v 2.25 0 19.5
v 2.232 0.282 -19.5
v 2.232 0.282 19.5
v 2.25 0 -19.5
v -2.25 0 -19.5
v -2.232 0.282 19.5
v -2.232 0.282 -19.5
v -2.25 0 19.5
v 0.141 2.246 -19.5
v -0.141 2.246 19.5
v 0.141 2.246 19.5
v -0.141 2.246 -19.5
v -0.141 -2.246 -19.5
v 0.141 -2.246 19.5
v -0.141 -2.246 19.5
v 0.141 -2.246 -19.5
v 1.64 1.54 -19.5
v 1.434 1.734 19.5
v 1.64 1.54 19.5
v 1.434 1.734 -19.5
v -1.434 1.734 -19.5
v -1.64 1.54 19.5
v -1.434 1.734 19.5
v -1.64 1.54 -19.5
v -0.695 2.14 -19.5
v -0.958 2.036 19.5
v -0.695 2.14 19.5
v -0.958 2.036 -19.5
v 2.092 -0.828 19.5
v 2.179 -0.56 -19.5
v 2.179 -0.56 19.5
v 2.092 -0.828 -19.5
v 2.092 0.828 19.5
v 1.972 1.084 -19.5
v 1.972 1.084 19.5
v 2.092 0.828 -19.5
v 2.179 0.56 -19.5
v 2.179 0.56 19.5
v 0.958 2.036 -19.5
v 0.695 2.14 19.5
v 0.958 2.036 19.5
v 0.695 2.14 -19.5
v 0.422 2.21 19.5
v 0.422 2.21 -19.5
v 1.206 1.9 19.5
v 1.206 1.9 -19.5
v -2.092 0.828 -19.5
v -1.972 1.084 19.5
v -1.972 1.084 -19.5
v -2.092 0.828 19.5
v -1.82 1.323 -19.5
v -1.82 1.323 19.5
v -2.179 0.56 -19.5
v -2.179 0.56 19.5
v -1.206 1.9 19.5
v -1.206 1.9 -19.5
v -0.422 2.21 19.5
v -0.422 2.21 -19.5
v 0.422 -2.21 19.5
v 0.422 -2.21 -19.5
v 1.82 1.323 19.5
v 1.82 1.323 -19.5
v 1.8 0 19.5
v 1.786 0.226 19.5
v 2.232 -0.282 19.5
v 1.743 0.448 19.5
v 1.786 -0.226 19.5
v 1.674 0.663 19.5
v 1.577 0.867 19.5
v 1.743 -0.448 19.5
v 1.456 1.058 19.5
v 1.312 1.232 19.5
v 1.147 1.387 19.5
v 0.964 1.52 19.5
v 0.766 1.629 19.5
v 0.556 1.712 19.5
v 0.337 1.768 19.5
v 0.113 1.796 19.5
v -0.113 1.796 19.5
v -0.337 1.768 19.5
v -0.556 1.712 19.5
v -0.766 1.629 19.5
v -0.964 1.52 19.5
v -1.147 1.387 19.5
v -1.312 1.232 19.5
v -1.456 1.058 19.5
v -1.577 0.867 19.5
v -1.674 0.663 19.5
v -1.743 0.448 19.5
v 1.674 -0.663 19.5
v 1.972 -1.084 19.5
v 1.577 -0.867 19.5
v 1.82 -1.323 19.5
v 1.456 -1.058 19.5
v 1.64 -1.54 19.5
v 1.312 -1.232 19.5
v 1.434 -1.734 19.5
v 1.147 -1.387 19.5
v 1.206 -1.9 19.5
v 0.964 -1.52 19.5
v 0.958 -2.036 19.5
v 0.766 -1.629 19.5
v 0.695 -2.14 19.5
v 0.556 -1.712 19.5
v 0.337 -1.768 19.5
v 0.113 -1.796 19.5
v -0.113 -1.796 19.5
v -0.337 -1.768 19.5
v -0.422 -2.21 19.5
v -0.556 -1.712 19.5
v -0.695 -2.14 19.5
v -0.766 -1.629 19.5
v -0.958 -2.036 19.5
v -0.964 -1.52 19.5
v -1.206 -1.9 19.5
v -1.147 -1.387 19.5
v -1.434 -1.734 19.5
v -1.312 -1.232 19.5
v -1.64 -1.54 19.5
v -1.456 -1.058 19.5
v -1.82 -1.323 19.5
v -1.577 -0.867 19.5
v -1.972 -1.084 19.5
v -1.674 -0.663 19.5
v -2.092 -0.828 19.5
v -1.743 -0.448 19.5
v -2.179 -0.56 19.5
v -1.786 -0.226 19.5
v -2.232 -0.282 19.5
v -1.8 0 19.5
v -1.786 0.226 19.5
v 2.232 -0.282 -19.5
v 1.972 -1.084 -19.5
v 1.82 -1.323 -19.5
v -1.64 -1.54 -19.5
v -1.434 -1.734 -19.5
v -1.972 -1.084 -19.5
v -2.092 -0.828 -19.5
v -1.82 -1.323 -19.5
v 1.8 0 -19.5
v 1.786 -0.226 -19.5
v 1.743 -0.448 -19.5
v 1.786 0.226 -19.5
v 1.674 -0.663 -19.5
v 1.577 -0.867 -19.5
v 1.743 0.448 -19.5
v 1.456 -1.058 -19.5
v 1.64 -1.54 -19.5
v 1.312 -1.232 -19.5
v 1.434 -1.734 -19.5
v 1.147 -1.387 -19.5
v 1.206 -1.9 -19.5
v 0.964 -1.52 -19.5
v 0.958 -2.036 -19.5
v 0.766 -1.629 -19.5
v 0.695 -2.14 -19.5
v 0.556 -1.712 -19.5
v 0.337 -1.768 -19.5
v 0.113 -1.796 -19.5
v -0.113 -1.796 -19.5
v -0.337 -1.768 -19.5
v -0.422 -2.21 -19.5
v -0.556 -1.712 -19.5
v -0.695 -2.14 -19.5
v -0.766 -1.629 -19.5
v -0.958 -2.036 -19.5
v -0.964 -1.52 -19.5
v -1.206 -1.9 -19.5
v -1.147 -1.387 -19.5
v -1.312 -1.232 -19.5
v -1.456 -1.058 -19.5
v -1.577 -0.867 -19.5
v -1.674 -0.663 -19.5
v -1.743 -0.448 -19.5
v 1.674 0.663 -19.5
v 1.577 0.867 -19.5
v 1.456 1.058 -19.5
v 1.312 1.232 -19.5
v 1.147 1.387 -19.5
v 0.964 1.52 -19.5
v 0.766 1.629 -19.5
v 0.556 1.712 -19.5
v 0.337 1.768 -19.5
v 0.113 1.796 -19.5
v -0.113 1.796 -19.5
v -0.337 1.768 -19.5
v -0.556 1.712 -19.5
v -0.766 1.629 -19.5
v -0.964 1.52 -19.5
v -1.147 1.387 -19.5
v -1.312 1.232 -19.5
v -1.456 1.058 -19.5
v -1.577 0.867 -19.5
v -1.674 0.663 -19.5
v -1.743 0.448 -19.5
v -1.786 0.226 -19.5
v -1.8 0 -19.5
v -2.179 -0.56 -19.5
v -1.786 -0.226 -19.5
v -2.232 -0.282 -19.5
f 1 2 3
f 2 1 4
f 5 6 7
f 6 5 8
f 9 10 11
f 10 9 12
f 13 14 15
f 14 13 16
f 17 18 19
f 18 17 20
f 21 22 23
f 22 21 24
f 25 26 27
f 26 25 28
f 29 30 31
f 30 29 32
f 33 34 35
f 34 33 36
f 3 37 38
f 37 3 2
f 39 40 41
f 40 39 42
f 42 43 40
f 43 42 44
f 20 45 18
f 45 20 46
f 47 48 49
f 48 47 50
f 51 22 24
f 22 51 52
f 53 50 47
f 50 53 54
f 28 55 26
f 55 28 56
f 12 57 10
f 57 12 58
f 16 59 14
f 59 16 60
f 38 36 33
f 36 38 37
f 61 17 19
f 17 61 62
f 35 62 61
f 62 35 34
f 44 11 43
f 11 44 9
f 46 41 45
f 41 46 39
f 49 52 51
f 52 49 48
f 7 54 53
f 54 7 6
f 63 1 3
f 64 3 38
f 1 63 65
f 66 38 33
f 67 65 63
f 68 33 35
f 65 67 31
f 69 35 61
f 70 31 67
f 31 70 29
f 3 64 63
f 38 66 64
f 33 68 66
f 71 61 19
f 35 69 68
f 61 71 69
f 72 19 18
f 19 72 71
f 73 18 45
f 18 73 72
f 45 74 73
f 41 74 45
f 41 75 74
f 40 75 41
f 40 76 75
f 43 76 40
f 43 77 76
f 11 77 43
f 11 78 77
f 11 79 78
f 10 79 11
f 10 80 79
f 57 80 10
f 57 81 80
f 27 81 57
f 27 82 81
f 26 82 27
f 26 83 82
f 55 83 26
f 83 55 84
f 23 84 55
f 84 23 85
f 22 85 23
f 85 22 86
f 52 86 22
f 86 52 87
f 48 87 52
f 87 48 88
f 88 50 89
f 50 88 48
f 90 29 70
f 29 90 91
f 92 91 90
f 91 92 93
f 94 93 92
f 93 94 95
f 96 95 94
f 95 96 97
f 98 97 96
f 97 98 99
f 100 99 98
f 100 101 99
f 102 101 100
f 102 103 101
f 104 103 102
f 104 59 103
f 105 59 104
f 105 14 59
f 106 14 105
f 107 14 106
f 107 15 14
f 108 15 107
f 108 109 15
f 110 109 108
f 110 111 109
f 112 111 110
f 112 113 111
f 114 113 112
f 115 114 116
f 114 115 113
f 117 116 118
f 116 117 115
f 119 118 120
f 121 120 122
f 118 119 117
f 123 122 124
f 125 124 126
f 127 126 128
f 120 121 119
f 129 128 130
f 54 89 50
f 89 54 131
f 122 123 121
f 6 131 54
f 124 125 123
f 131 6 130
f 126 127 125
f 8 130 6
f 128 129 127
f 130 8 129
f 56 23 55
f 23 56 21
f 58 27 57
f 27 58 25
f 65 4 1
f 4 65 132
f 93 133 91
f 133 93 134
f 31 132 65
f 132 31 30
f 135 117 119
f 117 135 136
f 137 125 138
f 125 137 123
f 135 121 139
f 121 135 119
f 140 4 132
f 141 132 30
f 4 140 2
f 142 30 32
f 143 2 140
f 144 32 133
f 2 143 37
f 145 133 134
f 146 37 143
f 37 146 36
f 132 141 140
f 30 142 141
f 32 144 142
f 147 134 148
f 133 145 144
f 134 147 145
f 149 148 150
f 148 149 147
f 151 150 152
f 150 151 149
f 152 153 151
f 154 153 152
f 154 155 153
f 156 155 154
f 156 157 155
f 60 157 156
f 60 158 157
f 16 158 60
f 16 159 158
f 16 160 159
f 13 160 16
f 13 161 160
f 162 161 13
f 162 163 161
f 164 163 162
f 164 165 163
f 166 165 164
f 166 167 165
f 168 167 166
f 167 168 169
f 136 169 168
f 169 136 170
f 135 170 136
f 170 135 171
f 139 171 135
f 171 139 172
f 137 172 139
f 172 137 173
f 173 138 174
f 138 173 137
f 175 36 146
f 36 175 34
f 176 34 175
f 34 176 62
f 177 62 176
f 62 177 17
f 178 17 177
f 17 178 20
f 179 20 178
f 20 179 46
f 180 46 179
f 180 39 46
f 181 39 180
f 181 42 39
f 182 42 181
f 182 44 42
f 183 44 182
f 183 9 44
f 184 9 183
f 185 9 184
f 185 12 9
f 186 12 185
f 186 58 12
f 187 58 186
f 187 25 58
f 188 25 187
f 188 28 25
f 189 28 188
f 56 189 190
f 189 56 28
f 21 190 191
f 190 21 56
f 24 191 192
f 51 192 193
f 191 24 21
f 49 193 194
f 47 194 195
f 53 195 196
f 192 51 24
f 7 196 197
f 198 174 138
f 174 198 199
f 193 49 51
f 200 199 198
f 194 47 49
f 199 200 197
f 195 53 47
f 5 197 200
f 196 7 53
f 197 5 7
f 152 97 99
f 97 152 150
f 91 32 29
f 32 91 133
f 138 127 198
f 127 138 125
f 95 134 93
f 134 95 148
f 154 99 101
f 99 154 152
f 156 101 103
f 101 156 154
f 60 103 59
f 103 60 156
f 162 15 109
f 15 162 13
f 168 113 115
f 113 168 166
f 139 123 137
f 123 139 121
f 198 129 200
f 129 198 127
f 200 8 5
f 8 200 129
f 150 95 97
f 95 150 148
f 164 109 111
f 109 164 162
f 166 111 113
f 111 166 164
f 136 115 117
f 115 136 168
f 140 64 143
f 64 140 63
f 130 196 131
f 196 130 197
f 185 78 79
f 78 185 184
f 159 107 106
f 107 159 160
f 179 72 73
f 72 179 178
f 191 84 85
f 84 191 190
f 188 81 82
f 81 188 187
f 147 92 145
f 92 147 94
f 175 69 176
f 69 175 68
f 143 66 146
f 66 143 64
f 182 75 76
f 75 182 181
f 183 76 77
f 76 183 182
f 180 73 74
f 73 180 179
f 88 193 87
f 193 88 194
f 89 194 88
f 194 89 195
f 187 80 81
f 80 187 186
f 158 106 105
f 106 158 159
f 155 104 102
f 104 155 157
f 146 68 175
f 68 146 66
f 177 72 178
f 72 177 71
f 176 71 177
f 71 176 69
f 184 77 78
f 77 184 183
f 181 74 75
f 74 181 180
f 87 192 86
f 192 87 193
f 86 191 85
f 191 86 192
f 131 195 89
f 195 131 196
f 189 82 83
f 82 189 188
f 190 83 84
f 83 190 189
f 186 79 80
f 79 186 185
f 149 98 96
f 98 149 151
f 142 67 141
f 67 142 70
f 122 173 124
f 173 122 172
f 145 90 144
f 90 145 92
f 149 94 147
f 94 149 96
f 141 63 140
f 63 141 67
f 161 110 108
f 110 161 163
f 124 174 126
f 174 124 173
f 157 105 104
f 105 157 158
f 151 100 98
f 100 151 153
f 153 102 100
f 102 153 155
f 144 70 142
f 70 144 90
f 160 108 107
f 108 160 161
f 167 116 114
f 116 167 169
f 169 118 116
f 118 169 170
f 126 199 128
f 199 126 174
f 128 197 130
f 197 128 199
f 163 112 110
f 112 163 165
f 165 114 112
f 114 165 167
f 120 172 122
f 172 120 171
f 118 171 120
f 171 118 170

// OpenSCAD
$fn = 50;


difference() {
	union() {
		translate(v = [0, 0, -19.5000000000]) {
			cylinder(h = 39, r = 2.2500000000);
		}
	}
	union() {
		translate(v = [0, 0, -100.0000000000]) {
			cylinder(h = 200, r = 1.8000000000);
		}
	}
}
